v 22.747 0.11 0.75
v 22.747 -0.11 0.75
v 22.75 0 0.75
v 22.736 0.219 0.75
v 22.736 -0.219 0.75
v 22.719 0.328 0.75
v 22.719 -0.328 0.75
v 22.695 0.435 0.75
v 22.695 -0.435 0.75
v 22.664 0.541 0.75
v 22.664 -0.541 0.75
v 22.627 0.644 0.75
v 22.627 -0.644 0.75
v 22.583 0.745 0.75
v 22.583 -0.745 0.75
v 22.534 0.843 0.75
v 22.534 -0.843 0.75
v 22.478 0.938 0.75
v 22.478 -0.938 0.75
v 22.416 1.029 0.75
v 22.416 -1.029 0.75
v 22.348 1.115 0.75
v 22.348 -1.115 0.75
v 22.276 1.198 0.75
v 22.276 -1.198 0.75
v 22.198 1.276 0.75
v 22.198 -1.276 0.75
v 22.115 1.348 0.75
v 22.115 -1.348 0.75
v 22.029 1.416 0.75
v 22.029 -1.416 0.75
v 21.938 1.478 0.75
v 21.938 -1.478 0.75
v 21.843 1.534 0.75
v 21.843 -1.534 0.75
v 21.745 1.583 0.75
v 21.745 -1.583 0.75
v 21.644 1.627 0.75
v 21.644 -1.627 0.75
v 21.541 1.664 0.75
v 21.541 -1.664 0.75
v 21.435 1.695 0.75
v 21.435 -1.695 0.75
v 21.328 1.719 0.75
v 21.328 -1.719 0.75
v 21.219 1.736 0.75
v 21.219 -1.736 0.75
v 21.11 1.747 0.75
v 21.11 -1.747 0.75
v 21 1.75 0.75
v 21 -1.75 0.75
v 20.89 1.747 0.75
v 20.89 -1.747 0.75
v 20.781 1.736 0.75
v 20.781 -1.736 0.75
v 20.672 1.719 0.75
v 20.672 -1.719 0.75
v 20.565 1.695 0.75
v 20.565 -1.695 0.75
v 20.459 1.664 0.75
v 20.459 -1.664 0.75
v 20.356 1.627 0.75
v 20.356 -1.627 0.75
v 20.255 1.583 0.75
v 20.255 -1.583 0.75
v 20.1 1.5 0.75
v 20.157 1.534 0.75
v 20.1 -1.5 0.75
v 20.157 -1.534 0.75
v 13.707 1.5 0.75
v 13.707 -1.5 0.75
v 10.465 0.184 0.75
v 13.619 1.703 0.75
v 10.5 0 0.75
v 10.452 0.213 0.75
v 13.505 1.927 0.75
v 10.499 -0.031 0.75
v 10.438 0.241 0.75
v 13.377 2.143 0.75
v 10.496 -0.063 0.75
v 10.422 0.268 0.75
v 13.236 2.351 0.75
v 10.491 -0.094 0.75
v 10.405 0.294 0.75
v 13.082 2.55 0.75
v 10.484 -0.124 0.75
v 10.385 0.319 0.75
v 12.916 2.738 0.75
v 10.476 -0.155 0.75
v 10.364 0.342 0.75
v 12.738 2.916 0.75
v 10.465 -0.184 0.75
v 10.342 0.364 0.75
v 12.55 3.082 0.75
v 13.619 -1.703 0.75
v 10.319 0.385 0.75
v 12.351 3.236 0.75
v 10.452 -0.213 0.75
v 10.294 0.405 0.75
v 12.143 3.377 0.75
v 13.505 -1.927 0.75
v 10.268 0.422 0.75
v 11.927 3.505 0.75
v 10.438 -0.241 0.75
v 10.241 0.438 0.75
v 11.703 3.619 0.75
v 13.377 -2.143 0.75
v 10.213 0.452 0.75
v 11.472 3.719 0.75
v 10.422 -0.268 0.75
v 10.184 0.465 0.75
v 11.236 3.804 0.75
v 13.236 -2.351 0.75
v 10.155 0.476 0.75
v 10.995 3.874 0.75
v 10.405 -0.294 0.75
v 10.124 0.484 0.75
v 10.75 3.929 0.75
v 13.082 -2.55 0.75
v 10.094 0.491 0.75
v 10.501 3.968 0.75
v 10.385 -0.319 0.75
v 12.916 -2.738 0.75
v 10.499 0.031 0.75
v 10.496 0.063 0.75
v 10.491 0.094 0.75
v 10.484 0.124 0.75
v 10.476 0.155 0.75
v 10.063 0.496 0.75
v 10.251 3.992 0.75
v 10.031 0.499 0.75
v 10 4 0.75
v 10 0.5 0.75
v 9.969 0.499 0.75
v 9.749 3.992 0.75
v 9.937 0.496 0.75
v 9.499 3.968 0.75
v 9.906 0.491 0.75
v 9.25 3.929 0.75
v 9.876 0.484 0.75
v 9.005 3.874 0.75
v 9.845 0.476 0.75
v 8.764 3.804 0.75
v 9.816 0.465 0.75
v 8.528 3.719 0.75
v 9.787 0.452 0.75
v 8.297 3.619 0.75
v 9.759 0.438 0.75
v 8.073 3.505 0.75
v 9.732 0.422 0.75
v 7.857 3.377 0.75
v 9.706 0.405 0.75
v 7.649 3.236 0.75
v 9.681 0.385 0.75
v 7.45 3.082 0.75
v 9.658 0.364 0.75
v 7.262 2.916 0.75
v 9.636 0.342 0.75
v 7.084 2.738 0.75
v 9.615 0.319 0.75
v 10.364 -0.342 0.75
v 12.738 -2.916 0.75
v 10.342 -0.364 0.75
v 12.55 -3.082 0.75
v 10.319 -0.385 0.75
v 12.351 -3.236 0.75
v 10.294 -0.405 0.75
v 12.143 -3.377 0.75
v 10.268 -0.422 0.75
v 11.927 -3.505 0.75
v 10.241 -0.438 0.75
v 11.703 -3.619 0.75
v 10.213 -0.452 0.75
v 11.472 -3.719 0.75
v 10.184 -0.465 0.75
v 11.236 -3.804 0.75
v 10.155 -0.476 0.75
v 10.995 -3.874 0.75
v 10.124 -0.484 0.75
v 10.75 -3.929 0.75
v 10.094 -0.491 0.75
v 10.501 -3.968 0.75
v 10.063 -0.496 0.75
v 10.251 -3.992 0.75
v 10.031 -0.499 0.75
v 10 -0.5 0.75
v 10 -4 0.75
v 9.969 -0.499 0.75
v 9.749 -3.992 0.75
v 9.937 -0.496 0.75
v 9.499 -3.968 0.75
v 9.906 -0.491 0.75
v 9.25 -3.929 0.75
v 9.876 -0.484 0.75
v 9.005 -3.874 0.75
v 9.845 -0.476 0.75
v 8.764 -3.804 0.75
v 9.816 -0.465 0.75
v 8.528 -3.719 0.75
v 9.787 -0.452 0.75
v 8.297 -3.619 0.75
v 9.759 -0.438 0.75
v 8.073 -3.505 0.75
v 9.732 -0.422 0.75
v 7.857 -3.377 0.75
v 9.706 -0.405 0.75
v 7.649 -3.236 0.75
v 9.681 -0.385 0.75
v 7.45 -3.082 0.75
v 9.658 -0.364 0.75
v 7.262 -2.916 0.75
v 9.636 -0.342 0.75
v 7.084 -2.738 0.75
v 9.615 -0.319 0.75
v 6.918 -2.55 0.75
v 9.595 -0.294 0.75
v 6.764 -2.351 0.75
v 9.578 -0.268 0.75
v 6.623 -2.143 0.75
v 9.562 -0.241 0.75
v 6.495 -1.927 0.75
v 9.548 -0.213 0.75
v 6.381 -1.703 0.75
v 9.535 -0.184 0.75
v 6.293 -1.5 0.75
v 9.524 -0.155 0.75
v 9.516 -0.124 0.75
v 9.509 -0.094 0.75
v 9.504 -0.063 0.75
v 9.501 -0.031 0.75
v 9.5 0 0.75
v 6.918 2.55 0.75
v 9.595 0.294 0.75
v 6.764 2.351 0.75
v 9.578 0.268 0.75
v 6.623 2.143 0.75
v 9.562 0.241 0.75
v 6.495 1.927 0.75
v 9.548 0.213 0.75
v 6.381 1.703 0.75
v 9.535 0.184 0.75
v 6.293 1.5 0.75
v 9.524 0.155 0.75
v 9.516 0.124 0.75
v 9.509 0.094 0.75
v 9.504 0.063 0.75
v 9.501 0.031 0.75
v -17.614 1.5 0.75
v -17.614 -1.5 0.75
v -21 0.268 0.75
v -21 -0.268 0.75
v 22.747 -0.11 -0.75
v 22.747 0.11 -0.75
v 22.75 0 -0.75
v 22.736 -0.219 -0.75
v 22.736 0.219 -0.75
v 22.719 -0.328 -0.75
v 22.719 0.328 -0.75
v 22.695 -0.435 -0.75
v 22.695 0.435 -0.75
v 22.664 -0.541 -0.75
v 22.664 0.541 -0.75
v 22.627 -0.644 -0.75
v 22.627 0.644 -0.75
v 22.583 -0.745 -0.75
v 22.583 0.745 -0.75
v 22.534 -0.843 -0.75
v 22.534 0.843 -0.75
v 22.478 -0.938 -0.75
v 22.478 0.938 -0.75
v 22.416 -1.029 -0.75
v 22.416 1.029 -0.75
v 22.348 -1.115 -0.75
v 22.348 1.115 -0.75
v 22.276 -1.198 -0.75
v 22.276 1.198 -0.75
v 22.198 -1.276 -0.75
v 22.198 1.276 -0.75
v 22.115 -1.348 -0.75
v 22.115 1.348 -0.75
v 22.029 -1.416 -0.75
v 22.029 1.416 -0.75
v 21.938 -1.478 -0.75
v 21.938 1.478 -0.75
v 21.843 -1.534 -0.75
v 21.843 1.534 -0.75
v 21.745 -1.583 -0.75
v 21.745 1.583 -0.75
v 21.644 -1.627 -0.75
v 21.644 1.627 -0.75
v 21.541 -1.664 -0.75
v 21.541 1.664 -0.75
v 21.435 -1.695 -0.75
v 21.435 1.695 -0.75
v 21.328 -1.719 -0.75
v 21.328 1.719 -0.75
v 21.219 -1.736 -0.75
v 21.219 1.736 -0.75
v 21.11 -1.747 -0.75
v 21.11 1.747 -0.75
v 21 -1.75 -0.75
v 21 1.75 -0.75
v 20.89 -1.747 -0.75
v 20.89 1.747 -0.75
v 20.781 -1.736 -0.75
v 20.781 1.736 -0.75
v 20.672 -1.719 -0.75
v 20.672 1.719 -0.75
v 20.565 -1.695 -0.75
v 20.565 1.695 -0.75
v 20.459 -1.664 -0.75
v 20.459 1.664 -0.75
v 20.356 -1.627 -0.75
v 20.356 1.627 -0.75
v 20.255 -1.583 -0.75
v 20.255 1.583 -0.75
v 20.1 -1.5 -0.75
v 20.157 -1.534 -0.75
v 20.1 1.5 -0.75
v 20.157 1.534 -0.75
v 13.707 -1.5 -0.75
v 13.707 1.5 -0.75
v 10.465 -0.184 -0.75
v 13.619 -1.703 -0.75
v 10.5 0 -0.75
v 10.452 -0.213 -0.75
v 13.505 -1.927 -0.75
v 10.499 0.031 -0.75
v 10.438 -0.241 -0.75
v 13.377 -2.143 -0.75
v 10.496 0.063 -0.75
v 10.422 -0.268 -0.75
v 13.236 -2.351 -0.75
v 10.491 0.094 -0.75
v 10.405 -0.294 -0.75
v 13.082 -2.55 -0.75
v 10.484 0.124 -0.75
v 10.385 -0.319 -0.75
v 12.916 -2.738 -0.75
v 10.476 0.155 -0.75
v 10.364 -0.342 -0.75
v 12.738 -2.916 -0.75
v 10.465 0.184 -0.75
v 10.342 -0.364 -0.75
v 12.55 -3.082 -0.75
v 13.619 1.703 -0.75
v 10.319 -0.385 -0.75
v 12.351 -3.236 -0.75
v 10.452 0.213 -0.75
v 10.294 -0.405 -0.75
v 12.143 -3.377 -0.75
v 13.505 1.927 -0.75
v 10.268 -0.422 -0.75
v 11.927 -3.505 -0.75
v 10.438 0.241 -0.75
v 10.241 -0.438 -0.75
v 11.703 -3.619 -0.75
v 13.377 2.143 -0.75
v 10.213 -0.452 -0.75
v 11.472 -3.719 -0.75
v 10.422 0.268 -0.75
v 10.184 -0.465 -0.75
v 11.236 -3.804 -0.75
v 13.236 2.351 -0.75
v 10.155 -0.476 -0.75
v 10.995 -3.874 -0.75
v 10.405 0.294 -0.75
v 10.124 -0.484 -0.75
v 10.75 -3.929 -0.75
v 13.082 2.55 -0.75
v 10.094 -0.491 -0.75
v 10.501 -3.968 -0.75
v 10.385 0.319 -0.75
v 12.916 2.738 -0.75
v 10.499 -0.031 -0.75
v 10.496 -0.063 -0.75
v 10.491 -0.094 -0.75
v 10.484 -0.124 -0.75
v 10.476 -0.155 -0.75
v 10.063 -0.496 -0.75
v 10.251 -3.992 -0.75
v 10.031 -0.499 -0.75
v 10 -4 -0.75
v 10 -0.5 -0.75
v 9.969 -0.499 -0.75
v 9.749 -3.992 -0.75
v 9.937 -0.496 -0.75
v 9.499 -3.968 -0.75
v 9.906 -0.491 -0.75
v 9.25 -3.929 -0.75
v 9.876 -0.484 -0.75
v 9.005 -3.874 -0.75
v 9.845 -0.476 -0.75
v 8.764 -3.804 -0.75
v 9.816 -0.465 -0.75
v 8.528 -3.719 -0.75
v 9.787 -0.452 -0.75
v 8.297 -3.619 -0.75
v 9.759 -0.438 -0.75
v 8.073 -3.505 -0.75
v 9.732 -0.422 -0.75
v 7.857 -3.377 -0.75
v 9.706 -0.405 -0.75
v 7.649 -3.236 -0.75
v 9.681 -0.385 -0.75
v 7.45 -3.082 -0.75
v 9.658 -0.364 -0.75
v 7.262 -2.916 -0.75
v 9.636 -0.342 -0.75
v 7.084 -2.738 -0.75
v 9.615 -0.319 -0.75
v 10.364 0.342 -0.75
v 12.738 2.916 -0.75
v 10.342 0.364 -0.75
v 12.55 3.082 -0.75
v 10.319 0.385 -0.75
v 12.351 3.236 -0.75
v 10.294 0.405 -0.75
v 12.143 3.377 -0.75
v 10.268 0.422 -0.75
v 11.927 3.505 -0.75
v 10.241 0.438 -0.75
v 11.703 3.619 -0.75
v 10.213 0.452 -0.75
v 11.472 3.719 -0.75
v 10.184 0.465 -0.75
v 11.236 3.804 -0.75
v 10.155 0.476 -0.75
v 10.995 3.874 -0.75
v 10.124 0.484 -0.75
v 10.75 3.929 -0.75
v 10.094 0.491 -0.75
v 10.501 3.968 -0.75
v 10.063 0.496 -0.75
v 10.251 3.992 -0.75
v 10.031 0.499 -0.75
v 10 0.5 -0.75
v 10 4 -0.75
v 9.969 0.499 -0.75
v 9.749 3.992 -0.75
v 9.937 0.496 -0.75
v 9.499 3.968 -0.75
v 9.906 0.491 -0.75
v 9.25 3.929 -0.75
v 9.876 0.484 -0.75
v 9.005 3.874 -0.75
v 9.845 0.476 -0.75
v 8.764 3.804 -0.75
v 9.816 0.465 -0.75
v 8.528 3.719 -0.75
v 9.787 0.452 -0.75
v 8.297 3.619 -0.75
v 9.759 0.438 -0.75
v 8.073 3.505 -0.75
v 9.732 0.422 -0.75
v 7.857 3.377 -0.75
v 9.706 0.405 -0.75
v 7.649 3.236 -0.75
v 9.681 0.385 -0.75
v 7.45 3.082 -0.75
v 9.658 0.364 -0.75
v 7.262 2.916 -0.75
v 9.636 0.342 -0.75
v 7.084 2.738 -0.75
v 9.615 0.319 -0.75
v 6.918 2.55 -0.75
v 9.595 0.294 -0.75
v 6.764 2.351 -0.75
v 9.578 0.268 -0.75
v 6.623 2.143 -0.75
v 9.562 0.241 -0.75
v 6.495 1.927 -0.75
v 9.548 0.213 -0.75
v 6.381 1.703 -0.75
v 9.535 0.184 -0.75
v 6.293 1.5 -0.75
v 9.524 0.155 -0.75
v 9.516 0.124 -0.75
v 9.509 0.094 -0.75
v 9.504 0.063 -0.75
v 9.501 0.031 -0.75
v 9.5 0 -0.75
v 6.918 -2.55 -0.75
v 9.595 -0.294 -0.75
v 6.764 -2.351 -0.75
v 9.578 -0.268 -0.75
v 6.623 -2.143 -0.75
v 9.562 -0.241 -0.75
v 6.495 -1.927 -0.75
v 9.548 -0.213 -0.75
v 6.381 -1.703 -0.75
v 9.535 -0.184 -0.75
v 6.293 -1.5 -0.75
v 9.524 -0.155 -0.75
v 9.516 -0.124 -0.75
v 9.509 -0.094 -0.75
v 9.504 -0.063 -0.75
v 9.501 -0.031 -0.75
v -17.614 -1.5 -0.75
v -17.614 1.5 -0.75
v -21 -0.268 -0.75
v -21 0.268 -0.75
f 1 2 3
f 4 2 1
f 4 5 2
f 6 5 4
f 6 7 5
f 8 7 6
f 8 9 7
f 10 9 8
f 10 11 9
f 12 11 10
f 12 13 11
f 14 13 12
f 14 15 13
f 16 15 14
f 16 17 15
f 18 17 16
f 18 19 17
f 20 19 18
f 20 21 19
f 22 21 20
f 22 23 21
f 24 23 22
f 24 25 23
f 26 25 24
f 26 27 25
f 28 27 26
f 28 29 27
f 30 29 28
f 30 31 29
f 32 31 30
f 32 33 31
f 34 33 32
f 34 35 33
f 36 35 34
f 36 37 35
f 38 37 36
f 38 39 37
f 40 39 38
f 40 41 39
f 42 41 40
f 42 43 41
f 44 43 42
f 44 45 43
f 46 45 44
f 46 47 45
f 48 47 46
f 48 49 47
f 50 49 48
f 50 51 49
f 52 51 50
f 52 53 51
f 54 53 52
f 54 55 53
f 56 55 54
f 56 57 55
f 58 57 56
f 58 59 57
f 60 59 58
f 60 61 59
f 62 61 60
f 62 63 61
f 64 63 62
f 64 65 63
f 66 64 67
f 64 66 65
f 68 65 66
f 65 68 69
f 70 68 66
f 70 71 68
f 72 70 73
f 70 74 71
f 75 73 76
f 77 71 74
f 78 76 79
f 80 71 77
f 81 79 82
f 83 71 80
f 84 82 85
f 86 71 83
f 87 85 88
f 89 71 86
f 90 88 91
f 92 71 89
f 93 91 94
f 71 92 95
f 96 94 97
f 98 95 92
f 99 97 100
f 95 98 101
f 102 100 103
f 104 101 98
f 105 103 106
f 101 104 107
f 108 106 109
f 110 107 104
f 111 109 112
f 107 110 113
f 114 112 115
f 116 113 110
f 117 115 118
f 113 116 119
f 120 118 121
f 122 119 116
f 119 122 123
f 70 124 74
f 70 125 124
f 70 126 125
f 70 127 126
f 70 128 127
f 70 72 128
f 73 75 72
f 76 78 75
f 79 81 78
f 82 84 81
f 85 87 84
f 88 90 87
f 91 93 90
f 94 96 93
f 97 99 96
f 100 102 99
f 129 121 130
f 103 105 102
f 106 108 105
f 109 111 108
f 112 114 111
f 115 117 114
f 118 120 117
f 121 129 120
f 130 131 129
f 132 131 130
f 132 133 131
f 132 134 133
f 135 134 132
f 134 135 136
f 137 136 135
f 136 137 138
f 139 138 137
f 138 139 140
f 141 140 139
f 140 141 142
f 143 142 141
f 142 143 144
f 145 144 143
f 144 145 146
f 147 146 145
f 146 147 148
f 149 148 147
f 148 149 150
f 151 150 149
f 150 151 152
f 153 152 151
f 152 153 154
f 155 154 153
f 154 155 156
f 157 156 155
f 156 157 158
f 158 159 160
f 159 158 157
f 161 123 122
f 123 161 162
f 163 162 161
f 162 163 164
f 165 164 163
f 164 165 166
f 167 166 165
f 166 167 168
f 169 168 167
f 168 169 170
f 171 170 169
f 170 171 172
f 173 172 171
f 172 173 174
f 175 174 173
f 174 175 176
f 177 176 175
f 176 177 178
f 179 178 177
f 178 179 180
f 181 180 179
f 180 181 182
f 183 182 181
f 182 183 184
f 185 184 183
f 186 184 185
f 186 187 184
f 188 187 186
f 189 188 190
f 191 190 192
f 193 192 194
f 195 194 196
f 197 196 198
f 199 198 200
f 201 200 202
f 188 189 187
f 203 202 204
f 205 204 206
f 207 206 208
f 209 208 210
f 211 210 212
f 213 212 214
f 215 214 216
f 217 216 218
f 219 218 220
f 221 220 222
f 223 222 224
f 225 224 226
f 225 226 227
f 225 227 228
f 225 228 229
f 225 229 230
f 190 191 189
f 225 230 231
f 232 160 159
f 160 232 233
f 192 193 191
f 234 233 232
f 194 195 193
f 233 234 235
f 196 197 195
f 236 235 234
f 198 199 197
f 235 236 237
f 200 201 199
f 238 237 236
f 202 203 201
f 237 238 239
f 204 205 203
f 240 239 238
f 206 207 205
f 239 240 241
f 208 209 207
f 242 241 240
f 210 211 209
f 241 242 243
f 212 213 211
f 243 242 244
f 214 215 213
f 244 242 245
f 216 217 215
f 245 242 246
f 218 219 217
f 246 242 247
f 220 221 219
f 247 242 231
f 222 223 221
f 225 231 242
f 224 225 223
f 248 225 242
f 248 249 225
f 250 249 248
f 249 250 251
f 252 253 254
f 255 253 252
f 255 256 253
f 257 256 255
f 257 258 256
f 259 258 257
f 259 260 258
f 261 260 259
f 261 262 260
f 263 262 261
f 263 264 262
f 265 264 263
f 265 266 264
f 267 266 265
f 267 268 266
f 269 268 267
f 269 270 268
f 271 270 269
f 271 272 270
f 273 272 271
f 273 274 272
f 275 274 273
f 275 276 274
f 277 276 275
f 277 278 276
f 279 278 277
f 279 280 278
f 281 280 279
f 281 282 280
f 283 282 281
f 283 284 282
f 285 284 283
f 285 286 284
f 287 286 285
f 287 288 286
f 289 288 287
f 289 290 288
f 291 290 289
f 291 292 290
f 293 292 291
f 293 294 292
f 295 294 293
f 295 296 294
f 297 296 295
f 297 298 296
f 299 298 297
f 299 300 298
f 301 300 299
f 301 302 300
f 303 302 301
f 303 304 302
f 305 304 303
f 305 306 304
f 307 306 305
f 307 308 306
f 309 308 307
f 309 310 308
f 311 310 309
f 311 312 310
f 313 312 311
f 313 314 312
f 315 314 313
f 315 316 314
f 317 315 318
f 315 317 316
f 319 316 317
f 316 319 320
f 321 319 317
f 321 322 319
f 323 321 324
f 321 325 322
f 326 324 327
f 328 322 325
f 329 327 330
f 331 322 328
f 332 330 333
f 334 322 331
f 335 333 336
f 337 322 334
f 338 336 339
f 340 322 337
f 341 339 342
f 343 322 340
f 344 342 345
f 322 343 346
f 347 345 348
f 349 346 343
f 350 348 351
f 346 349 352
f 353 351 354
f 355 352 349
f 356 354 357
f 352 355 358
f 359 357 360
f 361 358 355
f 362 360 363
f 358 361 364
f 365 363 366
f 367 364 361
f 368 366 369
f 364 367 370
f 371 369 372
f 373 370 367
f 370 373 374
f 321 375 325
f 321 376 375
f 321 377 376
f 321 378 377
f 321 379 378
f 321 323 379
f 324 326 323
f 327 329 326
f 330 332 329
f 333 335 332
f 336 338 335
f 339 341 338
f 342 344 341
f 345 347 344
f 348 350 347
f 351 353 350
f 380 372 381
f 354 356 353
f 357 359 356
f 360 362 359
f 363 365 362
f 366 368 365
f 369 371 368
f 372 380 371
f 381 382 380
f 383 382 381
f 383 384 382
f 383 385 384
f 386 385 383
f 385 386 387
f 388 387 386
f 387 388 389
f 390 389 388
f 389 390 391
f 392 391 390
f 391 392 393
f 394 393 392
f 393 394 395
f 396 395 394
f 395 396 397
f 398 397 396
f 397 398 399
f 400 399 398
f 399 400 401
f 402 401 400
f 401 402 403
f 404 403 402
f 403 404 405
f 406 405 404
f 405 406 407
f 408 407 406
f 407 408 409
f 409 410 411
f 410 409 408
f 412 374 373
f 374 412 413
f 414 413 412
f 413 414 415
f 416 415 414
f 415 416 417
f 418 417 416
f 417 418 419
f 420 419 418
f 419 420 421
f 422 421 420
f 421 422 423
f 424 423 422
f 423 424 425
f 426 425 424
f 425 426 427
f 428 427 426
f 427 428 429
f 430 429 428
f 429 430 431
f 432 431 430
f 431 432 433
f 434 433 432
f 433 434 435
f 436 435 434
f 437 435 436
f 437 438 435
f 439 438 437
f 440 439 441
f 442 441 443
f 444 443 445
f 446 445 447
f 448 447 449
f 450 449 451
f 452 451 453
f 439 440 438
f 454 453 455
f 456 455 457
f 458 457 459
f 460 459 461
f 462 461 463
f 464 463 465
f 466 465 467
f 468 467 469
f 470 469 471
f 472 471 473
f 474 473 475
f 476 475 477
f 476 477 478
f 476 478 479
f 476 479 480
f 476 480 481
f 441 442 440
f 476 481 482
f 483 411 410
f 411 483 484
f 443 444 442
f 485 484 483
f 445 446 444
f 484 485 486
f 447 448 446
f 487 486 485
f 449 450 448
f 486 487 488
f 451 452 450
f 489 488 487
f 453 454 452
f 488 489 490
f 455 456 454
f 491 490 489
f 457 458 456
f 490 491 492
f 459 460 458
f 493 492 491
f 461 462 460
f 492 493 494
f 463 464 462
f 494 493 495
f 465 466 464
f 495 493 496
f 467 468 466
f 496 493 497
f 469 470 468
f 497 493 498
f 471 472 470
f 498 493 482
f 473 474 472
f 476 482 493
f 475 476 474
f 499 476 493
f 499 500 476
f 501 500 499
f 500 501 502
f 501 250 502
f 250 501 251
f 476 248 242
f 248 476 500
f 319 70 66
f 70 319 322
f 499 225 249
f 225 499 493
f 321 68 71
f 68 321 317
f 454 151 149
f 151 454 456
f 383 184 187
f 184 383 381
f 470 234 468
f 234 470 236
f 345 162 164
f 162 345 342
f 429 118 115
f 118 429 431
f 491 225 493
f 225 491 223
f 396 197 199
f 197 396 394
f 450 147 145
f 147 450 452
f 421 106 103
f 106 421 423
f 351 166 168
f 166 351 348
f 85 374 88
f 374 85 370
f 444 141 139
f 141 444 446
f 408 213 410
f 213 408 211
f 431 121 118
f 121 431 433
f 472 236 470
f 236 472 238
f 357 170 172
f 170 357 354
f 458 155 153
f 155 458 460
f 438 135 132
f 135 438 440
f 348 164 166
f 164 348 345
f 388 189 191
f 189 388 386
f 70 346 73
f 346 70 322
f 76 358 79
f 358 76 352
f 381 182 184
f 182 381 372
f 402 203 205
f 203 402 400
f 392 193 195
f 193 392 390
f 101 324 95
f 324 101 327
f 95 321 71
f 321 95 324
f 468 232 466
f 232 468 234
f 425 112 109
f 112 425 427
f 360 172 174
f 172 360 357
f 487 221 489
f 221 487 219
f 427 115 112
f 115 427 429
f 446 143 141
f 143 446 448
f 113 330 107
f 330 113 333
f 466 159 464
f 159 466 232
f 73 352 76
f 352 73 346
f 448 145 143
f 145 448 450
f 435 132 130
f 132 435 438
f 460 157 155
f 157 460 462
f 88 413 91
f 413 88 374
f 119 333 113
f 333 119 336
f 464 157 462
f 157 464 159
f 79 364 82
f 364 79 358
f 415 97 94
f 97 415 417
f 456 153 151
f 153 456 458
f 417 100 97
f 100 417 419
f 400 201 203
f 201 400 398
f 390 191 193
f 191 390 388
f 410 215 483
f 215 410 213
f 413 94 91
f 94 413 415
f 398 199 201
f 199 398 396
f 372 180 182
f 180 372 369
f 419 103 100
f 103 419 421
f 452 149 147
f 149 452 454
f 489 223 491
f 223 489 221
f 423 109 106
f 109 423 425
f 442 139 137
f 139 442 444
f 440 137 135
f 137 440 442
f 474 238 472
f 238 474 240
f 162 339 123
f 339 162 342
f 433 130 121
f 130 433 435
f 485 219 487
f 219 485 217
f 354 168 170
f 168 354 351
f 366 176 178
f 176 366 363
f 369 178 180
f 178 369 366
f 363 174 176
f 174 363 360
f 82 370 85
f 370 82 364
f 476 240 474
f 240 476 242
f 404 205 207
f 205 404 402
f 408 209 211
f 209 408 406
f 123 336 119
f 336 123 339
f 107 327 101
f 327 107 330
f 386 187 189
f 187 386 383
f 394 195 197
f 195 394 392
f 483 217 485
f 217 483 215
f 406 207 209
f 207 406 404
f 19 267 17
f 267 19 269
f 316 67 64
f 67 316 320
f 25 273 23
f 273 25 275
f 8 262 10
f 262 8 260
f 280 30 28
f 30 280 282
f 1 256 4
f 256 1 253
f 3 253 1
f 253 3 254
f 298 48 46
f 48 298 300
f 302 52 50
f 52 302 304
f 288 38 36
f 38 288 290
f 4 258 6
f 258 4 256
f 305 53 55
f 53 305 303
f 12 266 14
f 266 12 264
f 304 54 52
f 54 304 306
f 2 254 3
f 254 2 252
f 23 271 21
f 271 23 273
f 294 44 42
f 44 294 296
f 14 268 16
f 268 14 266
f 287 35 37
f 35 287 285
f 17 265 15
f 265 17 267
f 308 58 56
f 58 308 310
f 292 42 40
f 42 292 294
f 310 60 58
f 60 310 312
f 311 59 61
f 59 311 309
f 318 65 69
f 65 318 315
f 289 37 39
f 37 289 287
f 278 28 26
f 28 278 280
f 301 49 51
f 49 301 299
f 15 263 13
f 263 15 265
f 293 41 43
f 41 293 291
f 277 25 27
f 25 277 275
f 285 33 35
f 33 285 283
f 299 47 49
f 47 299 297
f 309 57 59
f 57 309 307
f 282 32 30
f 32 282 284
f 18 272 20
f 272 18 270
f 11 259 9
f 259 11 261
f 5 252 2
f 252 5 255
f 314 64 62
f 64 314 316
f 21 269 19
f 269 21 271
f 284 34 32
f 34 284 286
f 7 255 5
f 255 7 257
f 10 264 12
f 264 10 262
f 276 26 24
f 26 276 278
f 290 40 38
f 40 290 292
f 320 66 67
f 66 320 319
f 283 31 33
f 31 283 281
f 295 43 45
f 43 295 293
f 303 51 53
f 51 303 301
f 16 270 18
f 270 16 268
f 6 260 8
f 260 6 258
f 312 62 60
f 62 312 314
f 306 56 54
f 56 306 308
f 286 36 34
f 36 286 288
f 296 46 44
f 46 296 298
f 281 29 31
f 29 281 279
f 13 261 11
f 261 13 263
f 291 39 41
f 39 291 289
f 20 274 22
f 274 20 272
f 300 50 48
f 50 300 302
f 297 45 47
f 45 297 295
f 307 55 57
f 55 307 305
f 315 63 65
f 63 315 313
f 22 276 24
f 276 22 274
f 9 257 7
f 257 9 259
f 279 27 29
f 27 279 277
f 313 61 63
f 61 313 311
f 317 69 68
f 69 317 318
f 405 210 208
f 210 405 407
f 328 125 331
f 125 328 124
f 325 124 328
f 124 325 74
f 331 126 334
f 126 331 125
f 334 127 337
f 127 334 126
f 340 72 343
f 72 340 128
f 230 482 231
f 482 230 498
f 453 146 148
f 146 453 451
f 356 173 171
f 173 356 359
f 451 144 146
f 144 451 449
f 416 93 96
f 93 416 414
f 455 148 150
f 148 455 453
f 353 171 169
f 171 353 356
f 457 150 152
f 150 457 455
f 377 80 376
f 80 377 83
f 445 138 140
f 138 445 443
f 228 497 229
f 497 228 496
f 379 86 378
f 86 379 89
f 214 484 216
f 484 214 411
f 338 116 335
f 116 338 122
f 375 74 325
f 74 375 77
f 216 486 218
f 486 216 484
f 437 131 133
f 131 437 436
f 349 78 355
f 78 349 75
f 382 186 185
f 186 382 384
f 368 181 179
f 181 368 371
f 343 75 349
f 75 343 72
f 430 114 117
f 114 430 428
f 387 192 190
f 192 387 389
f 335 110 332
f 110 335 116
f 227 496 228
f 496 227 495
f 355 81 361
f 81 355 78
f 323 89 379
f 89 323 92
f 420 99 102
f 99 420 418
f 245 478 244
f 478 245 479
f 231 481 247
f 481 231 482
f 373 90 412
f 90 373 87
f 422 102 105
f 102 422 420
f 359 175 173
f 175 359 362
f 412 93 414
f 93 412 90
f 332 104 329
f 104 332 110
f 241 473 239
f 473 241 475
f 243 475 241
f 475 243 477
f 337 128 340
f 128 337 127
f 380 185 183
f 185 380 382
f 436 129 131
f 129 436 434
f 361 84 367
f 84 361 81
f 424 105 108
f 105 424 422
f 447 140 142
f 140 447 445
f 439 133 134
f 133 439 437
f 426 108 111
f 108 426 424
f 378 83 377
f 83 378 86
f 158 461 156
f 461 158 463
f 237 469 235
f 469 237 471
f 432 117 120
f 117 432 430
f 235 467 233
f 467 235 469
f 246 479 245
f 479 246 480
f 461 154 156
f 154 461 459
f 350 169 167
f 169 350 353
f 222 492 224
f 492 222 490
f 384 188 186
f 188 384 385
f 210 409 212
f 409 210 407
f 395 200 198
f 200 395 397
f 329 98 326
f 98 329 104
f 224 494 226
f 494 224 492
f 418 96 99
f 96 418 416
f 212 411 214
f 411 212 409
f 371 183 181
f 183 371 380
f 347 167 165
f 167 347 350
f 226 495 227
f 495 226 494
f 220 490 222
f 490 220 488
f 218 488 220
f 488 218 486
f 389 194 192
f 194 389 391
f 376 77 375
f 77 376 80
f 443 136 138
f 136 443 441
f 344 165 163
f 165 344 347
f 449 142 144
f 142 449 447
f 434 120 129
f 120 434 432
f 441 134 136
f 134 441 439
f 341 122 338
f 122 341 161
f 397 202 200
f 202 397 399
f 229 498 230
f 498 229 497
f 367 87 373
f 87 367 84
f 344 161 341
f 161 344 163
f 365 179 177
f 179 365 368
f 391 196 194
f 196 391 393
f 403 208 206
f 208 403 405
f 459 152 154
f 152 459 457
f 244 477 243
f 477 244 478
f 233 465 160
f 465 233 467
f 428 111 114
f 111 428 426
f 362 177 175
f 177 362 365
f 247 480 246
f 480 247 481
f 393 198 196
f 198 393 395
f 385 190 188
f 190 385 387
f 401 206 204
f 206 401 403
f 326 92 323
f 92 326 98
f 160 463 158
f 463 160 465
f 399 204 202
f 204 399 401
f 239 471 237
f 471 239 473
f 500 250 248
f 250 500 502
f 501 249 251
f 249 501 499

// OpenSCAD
$fn=100;

height=1.5;

difference() {

    union() {

        cube([42,3,height], center=true);

        translate([10,0,0])
            cylinder(d=8,h=height,center=true);

        translate([21,0,0])
            cylinder(d=3.5,h=height,center=true);
    }


    translate([10,0,0])
        cylinder(d=1,h=height+1,center=true);


    translate([-22,1.5,0])
        rotate([0,0,20])
            cube([10,3,height+1],center=true);

    translate([-22,-1.5,0])
        rotate([0,0,-20])
            cube([10,3,height+1],center=true);
}
